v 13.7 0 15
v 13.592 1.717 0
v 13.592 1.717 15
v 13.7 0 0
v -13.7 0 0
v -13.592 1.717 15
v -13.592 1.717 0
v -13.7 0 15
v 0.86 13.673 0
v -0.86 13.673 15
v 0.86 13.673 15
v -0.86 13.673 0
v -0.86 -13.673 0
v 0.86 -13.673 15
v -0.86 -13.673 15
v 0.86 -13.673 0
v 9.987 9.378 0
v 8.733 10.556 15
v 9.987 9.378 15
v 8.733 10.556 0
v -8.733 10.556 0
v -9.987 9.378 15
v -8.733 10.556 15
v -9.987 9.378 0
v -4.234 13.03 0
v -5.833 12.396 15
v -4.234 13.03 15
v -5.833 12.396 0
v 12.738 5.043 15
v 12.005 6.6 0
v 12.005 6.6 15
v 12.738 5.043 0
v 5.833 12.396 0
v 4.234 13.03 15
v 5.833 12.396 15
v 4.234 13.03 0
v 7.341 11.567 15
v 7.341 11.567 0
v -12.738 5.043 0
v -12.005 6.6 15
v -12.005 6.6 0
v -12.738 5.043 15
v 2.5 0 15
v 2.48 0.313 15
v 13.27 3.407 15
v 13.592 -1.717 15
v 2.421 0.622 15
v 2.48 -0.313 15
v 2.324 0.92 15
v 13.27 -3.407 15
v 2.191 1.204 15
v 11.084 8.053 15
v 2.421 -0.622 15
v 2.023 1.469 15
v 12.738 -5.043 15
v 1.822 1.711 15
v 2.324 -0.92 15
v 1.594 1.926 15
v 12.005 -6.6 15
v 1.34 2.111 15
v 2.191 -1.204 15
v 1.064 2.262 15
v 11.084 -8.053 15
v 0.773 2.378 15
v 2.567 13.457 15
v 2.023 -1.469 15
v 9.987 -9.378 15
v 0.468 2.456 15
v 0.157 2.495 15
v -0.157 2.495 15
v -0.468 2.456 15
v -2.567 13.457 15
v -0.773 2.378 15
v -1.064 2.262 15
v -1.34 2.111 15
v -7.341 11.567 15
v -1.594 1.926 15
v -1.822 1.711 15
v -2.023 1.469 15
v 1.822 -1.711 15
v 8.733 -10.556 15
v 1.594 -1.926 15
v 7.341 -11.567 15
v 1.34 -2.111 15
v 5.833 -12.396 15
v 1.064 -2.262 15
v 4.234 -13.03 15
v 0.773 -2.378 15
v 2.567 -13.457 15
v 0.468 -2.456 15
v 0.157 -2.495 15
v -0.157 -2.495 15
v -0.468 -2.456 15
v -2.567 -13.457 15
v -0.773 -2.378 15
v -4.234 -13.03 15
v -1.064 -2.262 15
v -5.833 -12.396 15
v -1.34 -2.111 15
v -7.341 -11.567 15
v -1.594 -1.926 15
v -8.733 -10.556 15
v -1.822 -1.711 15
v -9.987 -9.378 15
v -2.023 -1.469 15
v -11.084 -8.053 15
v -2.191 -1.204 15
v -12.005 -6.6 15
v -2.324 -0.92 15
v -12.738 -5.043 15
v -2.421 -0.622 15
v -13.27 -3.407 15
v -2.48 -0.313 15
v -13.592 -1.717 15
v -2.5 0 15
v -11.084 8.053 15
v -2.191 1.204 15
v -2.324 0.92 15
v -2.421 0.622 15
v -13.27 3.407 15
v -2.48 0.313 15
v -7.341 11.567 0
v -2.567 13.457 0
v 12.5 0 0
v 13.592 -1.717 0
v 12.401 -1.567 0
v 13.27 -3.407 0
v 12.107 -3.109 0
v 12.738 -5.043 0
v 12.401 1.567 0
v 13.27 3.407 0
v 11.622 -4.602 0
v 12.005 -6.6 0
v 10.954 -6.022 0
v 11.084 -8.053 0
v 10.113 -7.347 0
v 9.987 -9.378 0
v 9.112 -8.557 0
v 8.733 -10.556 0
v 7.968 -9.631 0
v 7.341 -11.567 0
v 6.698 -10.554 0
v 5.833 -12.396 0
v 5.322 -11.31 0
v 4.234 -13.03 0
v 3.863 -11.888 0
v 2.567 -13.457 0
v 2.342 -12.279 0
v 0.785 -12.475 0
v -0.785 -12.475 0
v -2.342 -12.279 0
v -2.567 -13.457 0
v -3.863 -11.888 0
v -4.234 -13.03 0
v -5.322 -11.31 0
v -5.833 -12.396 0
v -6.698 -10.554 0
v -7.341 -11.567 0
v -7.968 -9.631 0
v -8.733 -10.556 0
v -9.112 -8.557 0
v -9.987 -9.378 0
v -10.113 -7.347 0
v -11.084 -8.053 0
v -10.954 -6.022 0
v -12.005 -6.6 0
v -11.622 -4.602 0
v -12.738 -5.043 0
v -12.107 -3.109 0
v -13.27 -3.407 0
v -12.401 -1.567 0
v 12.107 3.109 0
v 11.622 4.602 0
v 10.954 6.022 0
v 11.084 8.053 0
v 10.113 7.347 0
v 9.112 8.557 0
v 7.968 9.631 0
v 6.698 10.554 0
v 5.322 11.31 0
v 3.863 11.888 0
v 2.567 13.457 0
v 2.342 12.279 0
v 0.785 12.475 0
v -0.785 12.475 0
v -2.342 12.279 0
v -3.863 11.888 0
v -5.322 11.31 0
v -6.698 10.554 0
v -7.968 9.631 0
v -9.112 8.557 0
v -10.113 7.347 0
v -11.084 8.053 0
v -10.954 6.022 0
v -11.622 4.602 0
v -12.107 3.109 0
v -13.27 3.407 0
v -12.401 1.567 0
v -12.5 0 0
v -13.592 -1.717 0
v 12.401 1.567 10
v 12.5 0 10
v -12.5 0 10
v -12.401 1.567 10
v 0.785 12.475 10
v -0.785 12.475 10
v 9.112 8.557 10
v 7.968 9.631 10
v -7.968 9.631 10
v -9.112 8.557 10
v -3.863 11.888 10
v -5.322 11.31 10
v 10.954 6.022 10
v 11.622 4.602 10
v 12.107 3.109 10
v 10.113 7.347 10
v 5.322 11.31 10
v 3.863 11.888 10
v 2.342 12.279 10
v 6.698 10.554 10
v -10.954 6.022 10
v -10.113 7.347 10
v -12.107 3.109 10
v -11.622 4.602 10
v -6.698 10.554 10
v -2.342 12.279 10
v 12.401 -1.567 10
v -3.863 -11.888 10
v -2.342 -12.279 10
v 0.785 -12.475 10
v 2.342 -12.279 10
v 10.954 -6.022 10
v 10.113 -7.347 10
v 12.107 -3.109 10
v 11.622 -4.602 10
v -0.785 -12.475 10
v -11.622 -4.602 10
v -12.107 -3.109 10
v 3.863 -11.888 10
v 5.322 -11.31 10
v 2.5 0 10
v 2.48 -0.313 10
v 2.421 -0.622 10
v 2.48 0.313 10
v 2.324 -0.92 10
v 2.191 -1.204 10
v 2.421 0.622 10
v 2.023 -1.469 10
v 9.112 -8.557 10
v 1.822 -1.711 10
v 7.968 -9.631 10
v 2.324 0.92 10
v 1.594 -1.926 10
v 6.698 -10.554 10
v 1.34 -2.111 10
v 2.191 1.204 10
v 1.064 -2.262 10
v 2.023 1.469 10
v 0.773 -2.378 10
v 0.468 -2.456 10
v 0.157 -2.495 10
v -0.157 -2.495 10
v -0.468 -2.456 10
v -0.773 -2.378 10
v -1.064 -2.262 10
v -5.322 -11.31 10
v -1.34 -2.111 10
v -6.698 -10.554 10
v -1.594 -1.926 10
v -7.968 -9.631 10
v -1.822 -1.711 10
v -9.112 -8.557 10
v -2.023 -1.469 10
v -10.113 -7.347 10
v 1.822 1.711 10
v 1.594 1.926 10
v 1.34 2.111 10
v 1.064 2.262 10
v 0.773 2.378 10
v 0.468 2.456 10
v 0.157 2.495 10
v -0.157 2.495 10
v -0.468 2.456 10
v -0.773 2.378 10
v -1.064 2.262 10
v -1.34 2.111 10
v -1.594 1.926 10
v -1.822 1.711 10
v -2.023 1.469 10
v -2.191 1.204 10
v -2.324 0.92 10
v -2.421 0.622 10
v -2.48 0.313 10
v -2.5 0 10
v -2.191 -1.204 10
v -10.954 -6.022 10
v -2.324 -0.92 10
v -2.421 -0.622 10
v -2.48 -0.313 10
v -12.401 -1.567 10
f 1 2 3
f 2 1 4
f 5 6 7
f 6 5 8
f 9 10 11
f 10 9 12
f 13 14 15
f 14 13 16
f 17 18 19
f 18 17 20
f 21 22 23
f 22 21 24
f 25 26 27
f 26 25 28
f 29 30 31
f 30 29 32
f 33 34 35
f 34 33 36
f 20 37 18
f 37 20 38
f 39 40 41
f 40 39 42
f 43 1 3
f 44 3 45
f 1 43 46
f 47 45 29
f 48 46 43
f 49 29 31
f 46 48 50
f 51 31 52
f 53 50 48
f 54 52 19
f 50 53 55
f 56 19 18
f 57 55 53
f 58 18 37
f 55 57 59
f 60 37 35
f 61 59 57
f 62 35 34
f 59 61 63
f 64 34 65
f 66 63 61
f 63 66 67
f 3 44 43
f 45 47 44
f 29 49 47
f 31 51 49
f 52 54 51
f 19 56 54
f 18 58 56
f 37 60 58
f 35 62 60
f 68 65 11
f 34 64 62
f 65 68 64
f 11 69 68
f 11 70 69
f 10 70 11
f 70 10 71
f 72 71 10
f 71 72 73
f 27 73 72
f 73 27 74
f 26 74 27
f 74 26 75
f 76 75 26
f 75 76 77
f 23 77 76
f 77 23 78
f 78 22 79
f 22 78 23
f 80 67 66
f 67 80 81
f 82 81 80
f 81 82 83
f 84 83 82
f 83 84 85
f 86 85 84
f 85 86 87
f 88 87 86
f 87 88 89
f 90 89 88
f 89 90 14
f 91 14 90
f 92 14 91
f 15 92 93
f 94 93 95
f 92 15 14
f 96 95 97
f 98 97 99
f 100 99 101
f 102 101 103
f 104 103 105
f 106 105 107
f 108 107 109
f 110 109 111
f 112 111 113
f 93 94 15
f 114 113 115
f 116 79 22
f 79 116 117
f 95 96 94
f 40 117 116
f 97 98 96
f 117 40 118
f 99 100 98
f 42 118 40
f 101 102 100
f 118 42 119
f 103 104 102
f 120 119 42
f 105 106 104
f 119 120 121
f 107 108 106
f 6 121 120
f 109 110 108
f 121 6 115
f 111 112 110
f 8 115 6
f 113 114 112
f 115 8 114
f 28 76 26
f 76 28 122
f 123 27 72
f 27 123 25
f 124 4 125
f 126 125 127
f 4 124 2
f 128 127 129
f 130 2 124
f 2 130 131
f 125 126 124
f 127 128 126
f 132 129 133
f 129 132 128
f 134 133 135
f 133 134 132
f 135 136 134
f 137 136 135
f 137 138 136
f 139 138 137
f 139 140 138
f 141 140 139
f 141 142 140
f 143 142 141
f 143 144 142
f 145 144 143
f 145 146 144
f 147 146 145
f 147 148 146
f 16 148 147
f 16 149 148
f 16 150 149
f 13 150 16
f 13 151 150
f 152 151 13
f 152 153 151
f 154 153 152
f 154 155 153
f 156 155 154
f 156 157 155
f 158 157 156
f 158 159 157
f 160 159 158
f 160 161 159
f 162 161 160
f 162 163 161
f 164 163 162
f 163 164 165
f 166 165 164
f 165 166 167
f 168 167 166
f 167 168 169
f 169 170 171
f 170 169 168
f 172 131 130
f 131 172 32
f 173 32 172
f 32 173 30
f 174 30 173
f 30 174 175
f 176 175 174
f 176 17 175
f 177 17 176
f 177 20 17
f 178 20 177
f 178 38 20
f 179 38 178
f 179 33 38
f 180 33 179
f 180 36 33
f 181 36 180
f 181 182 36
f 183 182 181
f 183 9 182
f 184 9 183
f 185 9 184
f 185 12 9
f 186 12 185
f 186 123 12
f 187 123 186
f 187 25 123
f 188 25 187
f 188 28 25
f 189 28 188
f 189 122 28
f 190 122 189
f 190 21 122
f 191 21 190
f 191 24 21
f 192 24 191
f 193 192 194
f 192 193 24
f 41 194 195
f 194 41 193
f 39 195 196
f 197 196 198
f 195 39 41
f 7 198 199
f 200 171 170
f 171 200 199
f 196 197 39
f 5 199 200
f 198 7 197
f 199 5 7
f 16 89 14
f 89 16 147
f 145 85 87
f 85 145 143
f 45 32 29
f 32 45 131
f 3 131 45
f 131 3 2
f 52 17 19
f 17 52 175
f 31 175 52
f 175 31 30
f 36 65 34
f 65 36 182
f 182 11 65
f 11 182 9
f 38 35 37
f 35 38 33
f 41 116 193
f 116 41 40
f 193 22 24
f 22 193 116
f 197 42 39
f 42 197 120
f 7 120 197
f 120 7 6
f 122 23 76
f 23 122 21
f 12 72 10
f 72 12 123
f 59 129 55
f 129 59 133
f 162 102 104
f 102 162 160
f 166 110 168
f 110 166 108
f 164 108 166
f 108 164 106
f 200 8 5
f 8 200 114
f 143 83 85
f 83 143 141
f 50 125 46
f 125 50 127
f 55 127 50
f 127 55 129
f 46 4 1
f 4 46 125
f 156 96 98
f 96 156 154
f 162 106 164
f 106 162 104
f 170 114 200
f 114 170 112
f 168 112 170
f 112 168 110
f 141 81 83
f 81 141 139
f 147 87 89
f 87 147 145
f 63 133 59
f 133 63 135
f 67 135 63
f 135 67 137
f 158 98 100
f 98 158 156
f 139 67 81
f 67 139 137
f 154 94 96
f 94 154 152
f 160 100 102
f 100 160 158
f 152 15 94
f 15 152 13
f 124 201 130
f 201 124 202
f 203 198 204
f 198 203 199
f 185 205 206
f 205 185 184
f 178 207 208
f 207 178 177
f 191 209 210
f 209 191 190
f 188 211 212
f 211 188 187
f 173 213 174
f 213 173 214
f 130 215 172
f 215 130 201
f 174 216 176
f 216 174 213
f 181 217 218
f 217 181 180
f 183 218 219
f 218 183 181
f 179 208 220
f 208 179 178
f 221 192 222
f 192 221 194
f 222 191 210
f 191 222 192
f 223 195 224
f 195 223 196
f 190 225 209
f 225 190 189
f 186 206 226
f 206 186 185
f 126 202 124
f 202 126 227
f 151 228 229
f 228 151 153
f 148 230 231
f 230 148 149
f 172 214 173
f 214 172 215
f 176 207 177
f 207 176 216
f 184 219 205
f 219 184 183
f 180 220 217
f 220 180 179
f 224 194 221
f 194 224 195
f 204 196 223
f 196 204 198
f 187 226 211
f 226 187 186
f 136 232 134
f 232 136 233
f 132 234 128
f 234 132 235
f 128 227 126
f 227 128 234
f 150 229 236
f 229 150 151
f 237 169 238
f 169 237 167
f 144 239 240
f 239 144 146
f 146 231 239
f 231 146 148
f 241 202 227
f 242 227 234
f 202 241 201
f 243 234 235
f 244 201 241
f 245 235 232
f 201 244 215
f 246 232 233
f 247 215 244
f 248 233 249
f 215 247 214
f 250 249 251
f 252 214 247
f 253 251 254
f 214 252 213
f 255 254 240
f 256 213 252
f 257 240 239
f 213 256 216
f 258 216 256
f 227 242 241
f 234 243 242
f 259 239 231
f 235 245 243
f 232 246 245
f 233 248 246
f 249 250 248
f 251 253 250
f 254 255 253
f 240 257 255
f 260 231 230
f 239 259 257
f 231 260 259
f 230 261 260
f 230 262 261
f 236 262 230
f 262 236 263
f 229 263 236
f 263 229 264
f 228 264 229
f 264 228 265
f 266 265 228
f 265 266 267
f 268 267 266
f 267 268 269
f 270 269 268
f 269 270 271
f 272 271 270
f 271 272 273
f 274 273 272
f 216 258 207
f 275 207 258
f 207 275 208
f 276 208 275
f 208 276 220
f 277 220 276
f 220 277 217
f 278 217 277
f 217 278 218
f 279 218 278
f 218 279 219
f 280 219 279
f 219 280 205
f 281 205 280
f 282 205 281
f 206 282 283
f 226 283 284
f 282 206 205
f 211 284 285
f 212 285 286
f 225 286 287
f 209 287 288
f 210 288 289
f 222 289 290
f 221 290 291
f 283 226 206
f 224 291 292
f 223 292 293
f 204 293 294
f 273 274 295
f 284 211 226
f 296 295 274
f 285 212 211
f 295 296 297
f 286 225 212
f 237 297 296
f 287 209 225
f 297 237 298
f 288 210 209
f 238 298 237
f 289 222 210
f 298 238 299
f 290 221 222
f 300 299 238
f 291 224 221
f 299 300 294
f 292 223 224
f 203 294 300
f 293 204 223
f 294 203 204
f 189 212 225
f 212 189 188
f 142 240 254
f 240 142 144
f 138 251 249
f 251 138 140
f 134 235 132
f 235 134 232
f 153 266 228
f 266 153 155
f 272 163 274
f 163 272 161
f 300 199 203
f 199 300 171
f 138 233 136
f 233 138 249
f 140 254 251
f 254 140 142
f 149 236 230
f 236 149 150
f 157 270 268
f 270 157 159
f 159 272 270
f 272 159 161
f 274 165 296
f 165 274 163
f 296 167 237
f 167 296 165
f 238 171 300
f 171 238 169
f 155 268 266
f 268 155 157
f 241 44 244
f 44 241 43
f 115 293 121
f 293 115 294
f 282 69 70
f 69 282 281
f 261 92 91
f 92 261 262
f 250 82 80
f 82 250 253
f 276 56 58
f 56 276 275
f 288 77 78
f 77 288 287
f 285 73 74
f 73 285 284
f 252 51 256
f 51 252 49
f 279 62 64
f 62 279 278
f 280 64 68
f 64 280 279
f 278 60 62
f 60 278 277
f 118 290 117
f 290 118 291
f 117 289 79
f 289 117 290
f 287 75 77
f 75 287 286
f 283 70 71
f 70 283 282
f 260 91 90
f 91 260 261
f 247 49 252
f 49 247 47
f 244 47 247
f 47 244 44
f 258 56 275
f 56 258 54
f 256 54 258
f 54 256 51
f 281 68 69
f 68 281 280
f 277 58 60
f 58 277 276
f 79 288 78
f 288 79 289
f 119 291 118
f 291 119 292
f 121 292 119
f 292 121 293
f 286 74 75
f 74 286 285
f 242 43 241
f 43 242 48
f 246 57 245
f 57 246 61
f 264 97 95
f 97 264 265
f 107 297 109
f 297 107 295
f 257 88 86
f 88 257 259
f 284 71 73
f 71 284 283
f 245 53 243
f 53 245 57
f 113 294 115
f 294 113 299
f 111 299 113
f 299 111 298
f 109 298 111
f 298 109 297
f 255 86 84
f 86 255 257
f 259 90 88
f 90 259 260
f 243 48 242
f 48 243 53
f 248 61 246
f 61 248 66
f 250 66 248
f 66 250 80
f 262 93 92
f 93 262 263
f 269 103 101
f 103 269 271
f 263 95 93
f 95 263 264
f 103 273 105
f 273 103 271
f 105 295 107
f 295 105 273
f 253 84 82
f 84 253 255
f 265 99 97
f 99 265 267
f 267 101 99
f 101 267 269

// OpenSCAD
thickness = 1.2;

$fn = 50;

difference()
{
    cylinder(d = 25 + 2*thickness, h = 15);
    cylinder(d = 25, h = 10);
    
    translate([0, 0, 10])
    cylinder(d = 5, h = 5);
}
